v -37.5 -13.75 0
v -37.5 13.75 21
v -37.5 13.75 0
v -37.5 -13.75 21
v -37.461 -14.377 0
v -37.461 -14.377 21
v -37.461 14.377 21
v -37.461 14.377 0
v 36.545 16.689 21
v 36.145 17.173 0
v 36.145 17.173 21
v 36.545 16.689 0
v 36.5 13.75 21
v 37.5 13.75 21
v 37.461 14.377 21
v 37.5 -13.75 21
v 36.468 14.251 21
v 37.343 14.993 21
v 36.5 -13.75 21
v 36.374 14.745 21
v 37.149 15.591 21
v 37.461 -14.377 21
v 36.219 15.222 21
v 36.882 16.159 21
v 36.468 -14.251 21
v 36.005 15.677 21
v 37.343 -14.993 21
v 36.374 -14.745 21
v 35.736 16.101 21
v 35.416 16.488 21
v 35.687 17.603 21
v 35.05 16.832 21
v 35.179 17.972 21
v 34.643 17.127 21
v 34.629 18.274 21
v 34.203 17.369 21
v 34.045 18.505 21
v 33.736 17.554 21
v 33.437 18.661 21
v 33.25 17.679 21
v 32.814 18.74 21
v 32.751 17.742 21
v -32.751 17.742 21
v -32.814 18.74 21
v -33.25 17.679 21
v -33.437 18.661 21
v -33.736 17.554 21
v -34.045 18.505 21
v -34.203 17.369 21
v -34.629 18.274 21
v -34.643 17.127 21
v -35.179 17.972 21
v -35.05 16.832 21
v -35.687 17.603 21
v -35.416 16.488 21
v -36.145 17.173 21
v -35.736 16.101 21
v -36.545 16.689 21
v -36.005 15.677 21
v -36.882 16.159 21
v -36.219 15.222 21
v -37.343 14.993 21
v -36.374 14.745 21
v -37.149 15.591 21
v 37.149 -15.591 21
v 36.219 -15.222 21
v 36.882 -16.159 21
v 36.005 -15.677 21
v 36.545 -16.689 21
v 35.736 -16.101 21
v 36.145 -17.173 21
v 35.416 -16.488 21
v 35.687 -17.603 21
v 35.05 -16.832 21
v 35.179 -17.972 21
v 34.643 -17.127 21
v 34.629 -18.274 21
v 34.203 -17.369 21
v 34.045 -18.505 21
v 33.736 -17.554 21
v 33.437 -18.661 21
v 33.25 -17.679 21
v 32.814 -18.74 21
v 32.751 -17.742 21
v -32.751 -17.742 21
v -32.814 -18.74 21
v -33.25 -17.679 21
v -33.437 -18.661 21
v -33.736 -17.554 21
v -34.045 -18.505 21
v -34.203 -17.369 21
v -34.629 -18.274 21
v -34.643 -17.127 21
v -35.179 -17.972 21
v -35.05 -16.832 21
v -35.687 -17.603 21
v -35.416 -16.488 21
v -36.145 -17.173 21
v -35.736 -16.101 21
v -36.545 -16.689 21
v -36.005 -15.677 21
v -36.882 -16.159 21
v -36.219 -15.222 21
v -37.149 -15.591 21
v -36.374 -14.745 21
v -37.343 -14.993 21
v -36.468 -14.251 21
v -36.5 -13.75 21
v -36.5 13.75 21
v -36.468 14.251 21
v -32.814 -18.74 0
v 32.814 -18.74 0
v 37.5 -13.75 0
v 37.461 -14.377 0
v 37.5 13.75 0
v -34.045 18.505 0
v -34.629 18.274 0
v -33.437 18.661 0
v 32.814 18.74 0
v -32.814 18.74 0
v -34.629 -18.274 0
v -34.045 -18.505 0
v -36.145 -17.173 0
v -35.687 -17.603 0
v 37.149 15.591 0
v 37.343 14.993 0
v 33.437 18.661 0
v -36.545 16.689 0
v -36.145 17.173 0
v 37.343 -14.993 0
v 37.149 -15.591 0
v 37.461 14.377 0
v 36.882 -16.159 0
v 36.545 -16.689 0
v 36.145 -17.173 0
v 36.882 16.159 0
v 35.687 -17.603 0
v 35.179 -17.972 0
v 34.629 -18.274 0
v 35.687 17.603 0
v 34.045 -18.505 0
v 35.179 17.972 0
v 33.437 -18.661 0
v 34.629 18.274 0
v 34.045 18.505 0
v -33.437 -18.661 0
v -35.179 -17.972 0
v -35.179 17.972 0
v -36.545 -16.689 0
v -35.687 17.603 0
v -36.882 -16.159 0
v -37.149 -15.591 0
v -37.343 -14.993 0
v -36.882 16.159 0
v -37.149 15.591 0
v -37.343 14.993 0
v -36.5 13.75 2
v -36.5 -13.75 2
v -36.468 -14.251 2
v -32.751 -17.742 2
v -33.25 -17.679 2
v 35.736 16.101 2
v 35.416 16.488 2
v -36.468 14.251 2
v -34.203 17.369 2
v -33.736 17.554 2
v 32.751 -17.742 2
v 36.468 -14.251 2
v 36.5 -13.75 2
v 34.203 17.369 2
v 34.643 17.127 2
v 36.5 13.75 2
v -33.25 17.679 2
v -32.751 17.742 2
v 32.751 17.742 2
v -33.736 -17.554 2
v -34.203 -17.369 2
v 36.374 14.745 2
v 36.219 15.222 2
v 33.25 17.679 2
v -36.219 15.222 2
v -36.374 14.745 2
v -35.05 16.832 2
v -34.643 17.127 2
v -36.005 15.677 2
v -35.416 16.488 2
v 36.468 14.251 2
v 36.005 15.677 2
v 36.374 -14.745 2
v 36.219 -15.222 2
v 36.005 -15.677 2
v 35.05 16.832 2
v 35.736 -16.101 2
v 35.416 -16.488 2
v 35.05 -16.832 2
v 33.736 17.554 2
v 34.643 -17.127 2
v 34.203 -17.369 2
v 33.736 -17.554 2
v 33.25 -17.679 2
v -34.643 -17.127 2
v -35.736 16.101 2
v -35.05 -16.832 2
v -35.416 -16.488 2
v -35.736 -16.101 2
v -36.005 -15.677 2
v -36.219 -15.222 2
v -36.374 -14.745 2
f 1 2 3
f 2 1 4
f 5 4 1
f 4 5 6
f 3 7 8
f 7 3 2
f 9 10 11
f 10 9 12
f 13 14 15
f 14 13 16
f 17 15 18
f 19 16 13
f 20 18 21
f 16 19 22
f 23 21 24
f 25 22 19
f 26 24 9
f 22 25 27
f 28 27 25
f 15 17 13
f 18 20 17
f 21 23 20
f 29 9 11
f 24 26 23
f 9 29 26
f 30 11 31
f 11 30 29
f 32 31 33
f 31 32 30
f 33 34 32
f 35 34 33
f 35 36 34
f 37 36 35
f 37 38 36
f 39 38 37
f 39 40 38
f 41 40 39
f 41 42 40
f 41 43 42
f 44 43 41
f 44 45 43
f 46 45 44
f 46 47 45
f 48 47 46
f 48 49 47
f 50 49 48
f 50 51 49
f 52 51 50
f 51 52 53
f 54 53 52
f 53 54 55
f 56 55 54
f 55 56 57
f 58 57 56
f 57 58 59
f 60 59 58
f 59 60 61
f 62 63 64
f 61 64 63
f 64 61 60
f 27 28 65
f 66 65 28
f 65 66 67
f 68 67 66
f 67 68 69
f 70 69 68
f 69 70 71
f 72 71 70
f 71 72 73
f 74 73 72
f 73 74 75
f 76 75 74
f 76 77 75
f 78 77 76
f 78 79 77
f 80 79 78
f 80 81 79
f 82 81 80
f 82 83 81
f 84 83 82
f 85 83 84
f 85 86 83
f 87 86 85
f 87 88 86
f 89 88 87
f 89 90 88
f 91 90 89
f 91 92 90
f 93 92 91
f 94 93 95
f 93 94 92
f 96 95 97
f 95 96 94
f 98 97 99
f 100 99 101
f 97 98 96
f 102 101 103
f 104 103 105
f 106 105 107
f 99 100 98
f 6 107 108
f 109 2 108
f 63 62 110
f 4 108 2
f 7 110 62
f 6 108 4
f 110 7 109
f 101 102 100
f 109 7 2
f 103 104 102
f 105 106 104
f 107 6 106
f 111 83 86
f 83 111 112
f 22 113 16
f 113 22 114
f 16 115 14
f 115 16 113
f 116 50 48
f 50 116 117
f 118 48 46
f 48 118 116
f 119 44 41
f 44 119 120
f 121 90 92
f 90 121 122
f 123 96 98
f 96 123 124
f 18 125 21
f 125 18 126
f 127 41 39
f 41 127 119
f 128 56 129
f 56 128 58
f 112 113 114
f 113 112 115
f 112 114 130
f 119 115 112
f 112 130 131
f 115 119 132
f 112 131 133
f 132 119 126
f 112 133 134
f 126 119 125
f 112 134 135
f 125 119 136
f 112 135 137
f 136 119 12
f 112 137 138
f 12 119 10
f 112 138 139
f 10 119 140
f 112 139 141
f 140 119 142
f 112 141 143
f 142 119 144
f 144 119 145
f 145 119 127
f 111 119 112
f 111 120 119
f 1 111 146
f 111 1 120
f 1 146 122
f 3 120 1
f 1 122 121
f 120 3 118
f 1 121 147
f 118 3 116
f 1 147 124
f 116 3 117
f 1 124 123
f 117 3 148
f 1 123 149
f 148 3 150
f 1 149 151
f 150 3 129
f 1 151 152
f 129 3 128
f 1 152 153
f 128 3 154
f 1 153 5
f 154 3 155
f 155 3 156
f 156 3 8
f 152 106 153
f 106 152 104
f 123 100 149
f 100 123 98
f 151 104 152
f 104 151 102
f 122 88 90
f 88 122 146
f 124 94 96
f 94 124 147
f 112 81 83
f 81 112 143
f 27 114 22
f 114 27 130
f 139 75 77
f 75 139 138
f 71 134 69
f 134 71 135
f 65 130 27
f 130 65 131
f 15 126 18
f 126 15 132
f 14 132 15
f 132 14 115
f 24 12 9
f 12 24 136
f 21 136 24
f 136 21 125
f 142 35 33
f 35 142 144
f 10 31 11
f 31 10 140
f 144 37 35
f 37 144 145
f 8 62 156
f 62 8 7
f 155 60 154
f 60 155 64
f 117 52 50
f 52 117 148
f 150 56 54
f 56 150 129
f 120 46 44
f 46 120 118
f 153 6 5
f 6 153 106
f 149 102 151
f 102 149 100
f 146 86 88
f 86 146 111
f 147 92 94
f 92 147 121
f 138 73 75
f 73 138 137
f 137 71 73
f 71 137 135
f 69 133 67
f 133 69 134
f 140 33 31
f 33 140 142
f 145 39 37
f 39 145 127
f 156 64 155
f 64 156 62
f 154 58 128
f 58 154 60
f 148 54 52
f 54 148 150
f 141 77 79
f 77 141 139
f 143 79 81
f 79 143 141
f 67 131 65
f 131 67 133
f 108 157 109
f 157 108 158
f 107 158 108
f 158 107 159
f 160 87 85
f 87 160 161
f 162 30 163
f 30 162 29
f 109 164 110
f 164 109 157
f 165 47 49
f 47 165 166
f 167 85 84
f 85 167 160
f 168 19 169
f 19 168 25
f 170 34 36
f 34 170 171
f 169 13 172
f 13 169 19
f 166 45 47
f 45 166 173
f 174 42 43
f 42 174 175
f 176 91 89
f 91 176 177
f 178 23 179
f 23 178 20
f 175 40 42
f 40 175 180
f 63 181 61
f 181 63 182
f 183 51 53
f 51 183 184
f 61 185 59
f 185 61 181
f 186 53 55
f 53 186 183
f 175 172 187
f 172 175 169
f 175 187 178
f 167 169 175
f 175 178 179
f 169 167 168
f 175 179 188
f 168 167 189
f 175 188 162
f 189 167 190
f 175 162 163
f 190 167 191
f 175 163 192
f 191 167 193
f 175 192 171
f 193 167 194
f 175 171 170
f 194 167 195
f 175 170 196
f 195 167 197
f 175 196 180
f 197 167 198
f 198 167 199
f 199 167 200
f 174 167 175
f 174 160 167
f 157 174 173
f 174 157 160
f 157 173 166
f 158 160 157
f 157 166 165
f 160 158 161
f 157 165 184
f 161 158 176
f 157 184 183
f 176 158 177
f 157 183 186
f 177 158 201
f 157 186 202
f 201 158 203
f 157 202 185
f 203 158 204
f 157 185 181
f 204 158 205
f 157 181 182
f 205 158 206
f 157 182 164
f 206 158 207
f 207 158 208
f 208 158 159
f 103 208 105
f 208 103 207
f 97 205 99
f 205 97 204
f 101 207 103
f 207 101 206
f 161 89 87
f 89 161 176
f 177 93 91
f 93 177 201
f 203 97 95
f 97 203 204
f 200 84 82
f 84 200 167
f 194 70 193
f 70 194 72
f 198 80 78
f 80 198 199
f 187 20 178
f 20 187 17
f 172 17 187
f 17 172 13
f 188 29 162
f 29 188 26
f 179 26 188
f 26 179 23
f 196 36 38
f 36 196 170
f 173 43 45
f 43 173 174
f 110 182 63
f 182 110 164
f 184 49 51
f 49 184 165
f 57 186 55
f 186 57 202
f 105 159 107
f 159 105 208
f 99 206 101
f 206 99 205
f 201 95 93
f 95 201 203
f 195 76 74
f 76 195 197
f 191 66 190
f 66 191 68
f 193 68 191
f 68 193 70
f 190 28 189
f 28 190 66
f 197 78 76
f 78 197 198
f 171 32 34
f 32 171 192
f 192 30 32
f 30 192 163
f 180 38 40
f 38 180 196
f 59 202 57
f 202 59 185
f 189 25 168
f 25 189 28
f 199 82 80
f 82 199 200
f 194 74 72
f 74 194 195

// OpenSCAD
$fn = 50;


difference() {
	union() {
		hull() {
			translate(v = [-32.5000000000, 13.7500000000, 0]) {
				cylinder(h = 21, r = 5);
			}
			translate(v = [32.5000000000, 13.7500000000, 0]) {
				cylinder(h = 21, r = 5);
			}
			translate(v = [-32.5000000000, -13.7500000000, 0]) {
				cylinder(h = 21, r = 5);
			}
			translate(v = [32.5000000000, -13.7500000000, 0]) {
				cylinder(h = 21, r = 5);
			}
		}
	}
	union() {
		translate(v = [0, 0, 2]) {
			hull() {
				translate(v = [-32.5000000000, 13.7500000000, 0]) {
					cylinder(h = 19, r = 4);
				}
				translate(v = [32.5000000000, 13.7500000000, 0]) {
					cylinder(h = 19, r = 4);
				}
				translate(v = [-32.5000000000, -13.7500000000, 0]) {
					cylinder(h = 19, r = 4);
				}
				translate(v = [32.5000000000, -13.7500000000, 0]) {
					cylinder(h = 19, r = 4);
				}
			}
		}
	}
}
